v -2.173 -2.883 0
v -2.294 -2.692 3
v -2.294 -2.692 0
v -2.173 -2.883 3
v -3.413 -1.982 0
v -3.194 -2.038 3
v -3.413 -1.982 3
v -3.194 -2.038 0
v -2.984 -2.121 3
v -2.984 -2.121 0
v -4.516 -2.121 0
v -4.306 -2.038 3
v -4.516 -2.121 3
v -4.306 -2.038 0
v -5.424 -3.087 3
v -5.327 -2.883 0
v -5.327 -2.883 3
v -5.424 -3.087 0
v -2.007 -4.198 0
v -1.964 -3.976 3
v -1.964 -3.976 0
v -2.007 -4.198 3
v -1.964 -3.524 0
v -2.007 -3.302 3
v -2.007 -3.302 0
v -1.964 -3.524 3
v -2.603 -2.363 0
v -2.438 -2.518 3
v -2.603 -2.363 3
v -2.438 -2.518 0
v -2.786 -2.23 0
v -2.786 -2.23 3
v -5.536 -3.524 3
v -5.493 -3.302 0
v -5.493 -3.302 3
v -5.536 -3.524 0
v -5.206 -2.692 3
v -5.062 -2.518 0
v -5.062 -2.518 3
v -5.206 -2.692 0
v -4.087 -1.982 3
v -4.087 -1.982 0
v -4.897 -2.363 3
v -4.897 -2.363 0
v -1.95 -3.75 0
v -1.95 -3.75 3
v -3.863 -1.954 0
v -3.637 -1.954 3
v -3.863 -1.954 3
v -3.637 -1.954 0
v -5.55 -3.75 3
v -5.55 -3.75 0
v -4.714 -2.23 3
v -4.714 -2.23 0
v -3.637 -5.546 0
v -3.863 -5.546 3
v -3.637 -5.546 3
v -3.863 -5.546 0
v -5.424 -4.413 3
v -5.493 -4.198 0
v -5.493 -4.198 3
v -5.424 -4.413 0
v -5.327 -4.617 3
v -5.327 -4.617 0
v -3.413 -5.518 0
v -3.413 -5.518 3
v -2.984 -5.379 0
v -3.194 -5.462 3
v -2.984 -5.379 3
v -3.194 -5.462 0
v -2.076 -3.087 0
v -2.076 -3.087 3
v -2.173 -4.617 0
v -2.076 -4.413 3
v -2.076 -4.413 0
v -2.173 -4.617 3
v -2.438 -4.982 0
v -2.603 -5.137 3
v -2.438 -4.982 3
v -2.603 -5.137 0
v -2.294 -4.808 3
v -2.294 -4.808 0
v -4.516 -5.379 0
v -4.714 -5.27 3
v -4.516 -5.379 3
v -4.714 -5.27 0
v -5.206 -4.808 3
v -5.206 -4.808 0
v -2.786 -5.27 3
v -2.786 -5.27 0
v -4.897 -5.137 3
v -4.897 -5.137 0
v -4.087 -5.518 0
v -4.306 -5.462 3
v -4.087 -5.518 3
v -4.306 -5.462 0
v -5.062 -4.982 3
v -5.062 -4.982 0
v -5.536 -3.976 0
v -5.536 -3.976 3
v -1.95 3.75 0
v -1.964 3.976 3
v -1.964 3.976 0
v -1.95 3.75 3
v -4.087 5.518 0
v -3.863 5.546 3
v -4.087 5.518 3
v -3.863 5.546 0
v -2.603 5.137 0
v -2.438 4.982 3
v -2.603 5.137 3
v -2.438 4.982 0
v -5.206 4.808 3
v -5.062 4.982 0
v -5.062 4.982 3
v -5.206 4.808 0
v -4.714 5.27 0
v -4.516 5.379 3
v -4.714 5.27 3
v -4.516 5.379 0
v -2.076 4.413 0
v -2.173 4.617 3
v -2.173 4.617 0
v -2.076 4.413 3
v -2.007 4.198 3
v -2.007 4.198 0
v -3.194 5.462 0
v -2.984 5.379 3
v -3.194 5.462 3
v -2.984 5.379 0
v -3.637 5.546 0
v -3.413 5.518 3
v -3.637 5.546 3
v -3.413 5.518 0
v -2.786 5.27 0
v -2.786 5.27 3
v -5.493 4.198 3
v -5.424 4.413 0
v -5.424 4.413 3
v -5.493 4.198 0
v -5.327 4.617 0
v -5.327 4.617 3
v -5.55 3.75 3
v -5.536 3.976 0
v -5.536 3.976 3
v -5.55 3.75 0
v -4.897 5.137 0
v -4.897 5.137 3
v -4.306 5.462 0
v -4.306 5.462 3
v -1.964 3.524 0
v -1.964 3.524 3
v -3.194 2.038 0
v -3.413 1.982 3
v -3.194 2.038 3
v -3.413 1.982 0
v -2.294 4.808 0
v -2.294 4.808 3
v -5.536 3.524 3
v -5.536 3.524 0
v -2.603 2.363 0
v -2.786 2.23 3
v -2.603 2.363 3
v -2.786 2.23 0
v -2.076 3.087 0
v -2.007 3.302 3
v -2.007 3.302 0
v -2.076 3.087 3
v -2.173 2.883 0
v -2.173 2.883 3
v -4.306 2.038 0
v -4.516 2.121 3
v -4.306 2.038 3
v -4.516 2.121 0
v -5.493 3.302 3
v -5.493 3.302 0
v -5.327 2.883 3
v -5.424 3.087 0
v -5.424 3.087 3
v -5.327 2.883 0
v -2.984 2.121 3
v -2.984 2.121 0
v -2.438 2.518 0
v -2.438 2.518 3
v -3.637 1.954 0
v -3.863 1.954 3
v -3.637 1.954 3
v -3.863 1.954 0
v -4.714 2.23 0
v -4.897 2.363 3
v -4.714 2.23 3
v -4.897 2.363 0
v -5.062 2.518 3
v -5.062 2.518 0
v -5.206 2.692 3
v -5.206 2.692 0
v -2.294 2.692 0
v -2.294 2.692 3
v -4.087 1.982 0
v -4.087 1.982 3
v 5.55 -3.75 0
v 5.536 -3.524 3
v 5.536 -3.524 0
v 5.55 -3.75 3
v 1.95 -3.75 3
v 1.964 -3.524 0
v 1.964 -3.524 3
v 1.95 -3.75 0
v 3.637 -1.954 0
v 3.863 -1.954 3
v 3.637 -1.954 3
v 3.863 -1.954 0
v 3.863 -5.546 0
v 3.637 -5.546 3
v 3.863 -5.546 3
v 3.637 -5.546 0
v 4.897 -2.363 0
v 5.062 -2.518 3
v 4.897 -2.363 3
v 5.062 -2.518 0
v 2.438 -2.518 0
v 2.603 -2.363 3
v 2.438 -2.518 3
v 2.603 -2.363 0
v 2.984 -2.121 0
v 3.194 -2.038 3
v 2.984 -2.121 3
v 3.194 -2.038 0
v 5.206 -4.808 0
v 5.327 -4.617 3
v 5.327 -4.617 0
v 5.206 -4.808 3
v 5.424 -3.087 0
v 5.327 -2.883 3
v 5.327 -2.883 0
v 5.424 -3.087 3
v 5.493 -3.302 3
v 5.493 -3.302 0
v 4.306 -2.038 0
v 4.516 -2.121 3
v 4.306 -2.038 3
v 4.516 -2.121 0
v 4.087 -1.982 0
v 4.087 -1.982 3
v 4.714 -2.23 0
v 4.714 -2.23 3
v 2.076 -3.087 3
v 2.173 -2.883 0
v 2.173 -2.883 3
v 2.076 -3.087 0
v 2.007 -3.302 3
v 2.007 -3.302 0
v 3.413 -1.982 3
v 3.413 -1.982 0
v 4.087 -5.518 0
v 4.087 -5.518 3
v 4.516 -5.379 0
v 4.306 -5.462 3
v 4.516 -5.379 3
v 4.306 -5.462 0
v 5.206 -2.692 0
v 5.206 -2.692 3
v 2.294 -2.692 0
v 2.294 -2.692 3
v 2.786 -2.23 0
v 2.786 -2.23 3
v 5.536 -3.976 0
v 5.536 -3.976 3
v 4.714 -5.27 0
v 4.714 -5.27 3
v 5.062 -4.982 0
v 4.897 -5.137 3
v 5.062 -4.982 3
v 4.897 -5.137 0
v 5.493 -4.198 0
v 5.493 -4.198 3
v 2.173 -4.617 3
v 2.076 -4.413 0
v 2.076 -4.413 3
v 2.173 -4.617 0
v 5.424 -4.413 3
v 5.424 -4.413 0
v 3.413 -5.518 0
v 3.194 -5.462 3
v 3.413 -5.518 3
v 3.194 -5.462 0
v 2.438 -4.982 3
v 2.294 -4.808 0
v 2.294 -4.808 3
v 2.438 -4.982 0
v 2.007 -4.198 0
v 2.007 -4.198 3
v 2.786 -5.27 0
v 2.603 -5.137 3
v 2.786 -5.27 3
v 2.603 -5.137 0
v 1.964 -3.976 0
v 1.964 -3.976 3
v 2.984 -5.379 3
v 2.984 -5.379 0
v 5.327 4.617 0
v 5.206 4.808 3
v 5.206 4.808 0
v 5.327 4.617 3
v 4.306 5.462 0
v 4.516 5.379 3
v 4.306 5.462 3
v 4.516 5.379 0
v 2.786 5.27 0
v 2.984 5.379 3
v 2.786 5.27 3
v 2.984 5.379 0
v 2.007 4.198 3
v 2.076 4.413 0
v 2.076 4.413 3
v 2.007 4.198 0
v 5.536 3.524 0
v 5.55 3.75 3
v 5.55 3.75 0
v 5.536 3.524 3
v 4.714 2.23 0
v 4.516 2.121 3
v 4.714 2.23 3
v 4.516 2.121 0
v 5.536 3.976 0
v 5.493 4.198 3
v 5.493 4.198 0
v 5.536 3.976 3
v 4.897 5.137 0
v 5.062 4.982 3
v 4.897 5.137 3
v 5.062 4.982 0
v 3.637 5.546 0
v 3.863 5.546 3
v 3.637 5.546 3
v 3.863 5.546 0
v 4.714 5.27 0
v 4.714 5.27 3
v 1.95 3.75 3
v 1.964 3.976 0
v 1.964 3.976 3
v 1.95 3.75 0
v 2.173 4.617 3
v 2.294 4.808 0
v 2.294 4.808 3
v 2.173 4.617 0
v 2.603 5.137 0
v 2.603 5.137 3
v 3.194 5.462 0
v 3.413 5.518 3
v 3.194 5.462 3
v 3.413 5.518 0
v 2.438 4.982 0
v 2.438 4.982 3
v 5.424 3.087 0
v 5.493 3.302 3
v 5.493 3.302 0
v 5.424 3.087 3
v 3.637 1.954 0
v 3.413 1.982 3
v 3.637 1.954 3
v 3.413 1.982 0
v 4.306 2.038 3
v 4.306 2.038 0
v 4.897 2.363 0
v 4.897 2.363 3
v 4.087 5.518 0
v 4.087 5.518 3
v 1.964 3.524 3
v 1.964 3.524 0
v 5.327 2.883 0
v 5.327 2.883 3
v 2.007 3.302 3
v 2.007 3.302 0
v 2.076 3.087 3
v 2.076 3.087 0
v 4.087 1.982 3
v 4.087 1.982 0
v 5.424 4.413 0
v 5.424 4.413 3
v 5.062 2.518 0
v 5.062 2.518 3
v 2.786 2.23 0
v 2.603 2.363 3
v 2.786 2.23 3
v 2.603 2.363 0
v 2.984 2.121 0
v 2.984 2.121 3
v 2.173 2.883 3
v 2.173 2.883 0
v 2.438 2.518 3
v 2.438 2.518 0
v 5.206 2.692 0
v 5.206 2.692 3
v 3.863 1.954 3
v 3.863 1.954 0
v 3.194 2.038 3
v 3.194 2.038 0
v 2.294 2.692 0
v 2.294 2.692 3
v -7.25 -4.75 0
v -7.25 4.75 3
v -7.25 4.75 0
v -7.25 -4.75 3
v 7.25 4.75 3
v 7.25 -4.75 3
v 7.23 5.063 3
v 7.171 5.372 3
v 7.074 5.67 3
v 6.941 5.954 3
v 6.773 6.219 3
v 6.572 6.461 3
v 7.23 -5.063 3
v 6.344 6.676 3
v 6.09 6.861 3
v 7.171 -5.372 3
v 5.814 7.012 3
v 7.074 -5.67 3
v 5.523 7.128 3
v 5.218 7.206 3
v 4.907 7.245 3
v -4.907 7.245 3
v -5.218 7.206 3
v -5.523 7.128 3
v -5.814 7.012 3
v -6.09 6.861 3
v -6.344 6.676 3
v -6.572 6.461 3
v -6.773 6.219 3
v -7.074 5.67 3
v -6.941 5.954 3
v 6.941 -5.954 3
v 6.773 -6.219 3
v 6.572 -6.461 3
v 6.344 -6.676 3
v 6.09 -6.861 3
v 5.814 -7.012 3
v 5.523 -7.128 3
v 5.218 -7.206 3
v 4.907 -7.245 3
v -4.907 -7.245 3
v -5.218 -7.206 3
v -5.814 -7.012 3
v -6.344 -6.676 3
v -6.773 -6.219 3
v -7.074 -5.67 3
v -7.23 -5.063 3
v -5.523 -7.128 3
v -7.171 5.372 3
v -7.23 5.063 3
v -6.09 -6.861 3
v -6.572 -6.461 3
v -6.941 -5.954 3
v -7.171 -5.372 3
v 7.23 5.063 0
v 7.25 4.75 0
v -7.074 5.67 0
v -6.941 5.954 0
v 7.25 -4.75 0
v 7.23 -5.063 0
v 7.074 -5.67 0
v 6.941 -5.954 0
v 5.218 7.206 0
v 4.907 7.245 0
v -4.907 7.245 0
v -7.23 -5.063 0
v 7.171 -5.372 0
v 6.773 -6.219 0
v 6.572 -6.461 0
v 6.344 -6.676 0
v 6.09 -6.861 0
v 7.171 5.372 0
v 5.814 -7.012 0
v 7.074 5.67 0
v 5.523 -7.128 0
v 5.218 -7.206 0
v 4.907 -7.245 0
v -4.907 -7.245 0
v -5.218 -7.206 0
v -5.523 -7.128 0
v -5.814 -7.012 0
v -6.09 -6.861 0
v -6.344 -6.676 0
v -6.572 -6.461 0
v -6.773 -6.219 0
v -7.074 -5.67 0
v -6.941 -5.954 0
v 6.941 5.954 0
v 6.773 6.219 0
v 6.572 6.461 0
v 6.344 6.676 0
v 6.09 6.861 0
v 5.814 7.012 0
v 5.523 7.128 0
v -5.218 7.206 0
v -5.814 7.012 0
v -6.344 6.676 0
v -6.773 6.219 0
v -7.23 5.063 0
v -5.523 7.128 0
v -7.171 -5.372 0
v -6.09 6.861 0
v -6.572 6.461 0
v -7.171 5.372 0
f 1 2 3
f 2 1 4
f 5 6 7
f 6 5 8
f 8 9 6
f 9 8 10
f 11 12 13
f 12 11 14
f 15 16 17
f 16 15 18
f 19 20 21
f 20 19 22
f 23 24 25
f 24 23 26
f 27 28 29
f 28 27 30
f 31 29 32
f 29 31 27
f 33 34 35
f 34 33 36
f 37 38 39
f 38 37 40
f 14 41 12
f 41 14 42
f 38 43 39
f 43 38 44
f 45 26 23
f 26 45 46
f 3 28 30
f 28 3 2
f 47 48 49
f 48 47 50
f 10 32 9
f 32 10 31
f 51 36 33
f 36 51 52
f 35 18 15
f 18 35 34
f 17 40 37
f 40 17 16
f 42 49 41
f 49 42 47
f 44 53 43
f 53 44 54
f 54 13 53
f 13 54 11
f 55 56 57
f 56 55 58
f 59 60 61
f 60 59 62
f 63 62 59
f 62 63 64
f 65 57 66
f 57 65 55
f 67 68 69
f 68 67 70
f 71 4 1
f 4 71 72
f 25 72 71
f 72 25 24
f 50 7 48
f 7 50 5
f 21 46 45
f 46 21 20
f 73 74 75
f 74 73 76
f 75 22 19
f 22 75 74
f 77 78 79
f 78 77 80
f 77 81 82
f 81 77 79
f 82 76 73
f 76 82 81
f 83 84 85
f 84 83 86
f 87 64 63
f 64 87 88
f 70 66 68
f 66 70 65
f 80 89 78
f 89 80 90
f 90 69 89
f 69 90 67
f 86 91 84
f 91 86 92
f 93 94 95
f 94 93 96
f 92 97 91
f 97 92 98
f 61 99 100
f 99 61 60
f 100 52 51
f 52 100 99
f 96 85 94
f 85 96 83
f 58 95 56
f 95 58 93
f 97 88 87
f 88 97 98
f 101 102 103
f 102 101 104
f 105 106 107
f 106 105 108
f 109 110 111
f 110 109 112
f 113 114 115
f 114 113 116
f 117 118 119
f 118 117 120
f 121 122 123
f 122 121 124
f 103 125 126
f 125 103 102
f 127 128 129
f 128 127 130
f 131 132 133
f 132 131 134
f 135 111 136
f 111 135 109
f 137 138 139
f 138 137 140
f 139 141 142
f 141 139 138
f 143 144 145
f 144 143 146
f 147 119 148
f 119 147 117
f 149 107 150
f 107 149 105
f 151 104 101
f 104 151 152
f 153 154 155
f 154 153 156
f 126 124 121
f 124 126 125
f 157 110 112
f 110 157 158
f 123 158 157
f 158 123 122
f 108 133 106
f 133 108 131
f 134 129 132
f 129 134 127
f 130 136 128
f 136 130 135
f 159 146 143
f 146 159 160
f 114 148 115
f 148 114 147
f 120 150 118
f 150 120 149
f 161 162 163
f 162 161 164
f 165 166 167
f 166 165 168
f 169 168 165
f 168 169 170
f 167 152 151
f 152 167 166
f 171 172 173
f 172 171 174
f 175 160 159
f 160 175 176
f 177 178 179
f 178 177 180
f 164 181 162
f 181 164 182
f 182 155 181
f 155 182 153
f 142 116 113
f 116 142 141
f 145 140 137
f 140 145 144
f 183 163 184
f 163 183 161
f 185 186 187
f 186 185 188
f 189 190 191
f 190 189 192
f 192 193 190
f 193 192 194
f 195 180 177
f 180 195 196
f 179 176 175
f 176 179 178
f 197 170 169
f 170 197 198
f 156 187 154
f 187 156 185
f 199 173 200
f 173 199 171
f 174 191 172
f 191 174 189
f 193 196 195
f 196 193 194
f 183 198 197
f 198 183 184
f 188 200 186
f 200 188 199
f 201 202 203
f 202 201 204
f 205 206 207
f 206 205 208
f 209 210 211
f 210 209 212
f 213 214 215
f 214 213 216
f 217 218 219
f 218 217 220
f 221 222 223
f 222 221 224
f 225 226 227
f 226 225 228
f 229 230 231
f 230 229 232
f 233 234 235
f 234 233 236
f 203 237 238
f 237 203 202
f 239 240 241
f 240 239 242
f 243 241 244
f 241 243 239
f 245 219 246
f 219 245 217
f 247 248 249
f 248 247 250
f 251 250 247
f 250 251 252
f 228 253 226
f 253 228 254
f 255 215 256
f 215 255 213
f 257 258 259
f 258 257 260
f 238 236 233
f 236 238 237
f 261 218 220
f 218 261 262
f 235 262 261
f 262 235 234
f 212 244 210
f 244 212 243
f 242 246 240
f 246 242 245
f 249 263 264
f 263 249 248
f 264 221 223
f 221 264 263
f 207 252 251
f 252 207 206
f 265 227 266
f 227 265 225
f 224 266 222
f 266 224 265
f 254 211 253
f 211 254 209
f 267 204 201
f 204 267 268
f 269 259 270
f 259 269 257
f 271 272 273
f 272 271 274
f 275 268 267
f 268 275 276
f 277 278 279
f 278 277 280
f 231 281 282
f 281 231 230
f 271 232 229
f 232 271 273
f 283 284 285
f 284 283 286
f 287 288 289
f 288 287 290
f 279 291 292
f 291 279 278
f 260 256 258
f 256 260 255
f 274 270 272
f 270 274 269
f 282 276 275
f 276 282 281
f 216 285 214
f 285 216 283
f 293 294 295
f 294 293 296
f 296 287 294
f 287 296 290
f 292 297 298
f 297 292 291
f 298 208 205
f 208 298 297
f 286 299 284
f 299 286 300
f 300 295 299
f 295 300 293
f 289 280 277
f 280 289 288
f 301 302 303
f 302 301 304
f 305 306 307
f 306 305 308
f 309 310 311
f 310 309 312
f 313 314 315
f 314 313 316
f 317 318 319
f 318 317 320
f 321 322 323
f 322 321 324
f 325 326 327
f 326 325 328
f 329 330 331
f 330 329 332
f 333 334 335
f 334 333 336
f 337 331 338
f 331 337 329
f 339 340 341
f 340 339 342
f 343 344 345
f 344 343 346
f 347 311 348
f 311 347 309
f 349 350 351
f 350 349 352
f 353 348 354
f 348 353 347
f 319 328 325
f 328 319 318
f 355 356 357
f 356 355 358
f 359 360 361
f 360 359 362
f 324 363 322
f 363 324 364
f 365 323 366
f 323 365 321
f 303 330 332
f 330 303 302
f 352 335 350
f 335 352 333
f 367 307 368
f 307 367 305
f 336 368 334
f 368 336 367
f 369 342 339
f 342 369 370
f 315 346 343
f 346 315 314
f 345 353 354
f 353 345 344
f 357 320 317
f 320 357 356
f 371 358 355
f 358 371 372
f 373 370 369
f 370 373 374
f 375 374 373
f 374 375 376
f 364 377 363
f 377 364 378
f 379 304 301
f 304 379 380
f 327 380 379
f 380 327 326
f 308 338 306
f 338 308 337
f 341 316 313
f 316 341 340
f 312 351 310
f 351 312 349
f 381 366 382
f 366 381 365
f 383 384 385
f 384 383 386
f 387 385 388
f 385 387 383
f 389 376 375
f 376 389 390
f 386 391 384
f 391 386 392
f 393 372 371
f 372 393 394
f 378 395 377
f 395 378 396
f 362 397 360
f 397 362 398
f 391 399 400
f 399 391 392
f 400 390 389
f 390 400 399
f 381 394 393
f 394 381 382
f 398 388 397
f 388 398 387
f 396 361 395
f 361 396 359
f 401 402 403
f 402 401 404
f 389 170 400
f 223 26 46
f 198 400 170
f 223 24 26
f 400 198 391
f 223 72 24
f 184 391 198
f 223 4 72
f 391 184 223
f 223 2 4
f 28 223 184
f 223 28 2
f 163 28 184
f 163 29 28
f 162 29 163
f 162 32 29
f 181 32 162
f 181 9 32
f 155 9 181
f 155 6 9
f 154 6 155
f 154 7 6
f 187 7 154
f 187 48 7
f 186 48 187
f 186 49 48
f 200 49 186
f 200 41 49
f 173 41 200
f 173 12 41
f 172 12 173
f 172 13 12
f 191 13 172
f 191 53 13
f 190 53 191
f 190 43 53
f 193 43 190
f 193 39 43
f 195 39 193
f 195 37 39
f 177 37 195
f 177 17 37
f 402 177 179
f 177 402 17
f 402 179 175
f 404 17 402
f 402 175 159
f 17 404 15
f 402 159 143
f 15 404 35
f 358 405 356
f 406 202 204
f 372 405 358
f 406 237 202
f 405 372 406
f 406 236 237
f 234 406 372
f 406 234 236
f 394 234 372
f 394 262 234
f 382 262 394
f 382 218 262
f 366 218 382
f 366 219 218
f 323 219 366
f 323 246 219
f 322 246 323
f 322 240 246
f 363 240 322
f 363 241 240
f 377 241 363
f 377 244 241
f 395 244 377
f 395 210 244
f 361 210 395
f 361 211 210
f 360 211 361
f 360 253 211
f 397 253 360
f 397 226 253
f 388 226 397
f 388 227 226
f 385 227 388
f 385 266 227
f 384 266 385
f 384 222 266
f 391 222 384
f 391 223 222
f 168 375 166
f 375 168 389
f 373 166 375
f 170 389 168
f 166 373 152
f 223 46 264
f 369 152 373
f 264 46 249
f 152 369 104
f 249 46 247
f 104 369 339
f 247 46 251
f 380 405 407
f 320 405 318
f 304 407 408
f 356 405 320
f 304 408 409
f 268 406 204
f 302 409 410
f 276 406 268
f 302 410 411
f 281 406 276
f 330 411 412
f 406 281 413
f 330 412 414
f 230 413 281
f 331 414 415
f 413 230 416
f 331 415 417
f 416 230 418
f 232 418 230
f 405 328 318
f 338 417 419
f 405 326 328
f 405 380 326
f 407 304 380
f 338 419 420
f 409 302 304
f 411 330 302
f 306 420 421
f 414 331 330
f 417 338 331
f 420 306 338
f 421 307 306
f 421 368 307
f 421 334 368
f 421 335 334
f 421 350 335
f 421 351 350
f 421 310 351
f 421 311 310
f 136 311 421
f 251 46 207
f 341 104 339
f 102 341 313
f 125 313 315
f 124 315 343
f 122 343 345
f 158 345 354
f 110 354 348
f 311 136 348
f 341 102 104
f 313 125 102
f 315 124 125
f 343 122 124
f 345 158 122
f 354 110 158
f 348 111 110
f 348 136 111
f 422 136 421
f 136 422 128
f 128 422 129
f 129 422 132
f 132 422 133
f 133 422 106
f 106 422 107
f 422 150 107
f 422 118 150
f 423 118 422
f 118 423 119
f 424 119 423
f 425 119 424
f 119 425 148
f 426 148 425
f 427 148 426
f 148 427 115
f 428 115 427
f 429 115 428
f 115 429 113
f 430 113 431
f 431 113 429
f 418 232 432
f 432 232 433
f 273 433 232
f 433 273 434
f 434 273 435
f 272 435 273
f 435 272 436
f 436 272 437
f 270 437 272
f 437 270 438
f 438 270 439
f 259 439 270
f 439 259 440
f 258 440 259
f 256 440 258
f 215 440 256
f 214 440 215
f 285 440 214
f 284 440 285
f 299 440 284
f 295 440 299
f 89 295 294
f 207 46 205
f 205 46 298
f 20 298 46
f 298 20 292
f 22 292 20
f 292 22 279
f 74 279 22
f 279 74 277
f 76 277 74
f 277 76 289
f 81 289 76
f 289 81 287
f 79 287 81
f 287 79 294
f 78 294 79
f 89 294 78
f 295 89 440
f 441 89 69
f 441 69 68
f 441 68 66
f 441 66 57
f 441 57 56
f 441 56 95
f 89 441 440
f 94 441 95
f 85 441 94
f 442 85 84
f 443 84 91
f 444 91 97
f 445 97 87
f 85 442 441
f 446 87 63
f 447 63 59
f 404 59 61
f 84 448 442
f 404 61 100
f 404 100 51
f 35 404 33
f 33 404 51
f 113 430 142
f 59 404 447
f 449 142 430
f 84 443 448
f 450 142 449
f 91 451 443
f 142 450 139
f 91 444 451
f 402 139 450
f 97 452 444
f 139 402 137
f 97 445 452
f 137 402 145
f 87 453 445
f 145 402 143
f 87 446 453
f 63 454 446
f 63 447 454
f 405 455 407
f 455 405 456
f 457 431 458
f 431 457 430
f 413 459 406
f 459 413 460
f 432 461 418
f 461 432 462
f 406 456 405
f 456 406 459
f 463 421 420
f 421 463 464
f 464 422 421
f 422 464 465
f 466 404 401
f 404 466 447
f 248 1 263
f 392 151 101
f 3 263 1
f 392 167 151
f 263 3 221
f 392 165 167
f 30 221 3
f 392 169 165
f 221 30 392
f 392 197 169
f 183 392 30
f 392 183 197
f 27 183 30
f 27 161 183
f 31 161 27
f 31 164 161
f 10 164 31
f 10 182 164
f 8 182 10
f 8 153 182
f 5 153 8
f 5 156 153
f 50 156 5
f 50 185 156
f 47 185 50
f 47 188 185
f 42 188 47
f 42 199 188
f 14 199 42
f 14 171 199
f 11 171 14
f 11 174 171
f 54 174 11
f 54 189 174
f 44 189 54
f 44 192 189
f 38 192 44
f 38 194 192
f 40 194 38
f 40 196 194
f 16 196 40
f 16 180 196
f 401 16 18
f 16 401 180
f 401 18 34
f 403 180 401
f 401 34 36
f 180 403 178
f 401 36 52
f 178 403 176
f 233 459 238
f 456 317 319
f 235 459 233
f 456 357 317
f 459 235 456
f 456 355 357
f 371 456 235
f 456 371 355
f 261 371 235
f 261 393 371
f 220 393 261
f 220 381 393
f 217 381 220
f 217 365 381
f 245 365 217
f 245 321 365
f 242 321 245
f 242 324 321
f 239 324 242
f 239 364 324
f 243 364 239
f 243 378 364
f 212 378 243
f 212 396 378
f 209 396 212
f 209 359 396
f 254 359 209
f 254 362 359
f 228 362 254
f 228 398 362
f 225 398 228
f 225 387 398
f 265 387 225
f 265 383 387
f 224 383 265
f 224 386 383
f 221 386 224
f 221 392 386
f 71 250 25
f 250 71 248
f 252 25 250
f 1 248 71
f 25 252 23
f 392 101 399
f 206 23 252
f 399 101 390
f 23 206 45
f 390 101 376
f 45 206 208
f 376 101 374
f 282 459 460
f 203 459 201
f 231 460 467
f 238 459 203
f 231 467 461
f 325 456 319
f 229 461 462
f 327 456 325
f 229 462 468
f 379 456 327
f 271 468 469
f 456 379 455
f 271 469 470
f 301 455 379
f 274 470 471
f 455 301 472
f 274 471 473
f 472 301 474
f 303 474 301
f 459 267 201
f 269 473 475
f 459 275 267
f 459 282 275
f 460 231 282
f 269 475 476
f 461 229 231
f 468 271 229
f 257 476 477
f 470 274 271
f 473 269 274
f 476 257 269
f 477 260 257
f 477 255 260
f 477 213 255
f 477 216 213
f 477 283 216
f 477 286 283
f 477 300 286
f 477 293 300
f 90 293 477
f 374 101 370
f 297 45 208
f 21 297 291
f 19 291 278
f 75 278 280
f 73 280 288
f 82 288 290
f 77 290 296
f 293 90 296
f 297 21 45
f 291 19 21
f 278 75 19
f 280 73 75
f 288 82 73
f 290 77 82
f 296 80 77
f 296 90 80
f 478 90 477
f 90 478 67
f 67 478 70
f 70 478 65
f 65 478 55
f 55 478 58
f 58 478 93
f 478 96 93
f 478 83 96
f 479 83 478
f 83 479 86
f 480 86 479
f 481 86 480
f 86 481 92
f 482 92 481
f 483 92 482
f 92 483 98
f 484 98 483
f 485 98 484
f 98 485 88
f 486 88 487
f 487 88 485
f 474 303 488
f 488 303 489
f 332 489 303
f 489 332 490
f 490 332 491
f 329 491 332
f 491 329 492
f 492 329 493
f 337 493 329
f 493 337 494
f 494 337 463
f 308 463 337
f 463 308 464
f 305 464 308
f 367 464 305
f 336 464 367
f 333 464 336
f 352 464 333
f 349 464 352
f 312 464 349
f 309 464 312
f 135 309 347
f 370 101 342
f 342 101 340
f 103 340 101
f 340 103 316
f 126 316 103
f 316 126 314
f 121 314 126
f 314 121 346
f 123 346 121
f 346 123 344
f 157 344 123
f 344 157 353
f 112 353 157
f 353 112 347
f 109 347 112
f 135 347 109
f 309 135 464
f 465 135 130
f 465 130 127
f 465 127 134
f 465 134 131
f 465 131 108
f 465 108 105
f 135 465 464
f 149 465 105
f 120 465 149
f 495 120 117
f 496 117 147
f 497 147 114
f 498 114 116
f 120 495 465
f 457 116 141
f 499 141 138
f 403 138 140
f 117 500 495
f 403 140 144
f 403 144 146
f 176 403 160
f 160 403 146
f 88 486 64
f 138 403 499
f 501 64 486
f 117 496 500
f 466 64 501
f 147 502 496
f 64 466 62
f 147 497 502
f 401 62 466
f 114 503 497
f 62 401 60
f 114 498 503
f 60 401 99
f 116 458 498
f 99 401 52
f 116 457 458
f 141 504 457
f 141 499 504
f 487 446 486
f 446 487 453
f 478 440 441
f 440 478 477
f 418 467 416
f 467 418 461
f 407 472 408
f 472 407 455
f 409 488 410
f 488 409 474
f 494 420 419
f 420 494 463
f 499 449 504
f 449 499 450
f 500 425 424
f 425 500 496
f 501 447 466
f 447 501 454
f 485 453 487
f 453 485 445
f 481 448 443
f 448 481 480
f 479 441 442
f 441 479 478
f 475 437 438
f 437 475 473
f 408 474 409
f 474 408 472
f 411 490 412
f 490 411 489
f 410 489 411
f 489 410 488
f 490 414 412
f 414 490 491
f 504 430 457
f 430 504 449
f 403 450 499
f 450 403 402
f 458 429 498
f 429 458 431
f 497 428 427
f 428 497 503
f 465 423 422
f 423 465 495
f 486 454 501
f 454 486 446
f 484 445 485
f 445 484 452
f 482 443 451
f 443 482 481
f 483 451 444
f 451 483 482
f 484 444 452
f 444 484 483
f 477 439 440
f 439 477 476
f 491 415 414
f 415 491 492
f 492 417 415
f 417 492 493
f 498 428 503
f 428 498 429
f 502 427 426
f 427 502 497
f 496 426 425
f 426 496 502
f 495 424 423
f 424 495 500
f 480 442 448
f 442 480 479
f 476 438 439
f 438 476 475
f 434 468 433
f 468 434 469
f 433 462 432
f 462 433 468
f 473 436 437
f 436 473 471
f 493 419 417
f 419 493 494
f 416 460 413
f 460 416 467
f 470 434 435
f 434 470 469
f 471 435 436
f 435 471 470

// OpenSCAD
$fn = 50;


difference() {
	union() {
		translate(v = [0, 0, 0]) {
			rotate(a = [0, 0, 0]) {
				hull() {
					translate(v = [-4.7500000000, 4.7500000000, 0]) {
						rotate(a = [0, 0, 0]) {
							translate(v = [0, 0, 0]) {
								rotate(a = [0, 0, 0]) {
									cylinder(h = 3, r = 2.5000000000);
								}
							}
						}
					}
					translate(v = [4.7500000000, 4.7500000000, 0]) {
						rotate(a = [0, 0, 0]) {
							translate(v = [0, 0, 0]) {
								rotate(a = [0, 0, 0]) {
									cylinder(h = 3, r = 2.5000000000);
								}
							}
						}
					}
					translate(v = [-4.7500000000, -4.7500000000, 0]) {
						rotate(a = [0, 0, 0]) {
							translate(v = [0, 0, 0]) {
								rotate(a = [0, 0, 0]) {
									cylinder(h = 3, r = 2.5000000000);
								}
							}
						}
					}
					translate(v = [4.7500000000, -4.7500000000, 0]) {
						rotate(a = [0, 0, 0]) {
							translate(v = [0, 0, 0]) {
								rotate(a = [0, 0, 0]) {
									cylinder(h = 3, r = 2.5000000000);
								}
							}
						}
					}
				}
			}
		}
	}
	union() {
		translate(v = [-3.7500000000, -3.7500000000, 0]) {
			rotate(a = [0, 0, 0]) {
				translate(v = [0, 0, -50]) {
					rotate(a = [0, 0, 0]) {
						cylinder(h = 100, r = 1.8000000000);
					}
				}
			}
		}
		translate(v = [-3.7500000000, 3.7500000000, 0]) {
			rotate(a = [0, 0, 0]) {
				translate(v = [0, 0, -50]) {
					rotate(a = [0, 0, 0]) {
						cylinder(h = 100, r = 1.8000000000);
					}
				}
			}
		}
		translate(v = [3.7500000000, -3.7500000000, 0]) {
			rotate(a = [0, 0, 0]) {
				translate(v = [0, 0, -50]) {
					rotate(a = [0, 0, 0]) {
						cylinder(h = 100, r = 1.8000000000);
					}
				}
			}
		}
		translate(v = [3.7500000000, 3.7500000000, 0]) {
			rotate(a = [0, 0, 0]) {
				translate(v = [0, 0, -50]) {
					rotate(a = [0, 0, 0]) {
						cylinder(h = 100, r = 1.8000000000);
					}
				}
			}
		}
	}
}
